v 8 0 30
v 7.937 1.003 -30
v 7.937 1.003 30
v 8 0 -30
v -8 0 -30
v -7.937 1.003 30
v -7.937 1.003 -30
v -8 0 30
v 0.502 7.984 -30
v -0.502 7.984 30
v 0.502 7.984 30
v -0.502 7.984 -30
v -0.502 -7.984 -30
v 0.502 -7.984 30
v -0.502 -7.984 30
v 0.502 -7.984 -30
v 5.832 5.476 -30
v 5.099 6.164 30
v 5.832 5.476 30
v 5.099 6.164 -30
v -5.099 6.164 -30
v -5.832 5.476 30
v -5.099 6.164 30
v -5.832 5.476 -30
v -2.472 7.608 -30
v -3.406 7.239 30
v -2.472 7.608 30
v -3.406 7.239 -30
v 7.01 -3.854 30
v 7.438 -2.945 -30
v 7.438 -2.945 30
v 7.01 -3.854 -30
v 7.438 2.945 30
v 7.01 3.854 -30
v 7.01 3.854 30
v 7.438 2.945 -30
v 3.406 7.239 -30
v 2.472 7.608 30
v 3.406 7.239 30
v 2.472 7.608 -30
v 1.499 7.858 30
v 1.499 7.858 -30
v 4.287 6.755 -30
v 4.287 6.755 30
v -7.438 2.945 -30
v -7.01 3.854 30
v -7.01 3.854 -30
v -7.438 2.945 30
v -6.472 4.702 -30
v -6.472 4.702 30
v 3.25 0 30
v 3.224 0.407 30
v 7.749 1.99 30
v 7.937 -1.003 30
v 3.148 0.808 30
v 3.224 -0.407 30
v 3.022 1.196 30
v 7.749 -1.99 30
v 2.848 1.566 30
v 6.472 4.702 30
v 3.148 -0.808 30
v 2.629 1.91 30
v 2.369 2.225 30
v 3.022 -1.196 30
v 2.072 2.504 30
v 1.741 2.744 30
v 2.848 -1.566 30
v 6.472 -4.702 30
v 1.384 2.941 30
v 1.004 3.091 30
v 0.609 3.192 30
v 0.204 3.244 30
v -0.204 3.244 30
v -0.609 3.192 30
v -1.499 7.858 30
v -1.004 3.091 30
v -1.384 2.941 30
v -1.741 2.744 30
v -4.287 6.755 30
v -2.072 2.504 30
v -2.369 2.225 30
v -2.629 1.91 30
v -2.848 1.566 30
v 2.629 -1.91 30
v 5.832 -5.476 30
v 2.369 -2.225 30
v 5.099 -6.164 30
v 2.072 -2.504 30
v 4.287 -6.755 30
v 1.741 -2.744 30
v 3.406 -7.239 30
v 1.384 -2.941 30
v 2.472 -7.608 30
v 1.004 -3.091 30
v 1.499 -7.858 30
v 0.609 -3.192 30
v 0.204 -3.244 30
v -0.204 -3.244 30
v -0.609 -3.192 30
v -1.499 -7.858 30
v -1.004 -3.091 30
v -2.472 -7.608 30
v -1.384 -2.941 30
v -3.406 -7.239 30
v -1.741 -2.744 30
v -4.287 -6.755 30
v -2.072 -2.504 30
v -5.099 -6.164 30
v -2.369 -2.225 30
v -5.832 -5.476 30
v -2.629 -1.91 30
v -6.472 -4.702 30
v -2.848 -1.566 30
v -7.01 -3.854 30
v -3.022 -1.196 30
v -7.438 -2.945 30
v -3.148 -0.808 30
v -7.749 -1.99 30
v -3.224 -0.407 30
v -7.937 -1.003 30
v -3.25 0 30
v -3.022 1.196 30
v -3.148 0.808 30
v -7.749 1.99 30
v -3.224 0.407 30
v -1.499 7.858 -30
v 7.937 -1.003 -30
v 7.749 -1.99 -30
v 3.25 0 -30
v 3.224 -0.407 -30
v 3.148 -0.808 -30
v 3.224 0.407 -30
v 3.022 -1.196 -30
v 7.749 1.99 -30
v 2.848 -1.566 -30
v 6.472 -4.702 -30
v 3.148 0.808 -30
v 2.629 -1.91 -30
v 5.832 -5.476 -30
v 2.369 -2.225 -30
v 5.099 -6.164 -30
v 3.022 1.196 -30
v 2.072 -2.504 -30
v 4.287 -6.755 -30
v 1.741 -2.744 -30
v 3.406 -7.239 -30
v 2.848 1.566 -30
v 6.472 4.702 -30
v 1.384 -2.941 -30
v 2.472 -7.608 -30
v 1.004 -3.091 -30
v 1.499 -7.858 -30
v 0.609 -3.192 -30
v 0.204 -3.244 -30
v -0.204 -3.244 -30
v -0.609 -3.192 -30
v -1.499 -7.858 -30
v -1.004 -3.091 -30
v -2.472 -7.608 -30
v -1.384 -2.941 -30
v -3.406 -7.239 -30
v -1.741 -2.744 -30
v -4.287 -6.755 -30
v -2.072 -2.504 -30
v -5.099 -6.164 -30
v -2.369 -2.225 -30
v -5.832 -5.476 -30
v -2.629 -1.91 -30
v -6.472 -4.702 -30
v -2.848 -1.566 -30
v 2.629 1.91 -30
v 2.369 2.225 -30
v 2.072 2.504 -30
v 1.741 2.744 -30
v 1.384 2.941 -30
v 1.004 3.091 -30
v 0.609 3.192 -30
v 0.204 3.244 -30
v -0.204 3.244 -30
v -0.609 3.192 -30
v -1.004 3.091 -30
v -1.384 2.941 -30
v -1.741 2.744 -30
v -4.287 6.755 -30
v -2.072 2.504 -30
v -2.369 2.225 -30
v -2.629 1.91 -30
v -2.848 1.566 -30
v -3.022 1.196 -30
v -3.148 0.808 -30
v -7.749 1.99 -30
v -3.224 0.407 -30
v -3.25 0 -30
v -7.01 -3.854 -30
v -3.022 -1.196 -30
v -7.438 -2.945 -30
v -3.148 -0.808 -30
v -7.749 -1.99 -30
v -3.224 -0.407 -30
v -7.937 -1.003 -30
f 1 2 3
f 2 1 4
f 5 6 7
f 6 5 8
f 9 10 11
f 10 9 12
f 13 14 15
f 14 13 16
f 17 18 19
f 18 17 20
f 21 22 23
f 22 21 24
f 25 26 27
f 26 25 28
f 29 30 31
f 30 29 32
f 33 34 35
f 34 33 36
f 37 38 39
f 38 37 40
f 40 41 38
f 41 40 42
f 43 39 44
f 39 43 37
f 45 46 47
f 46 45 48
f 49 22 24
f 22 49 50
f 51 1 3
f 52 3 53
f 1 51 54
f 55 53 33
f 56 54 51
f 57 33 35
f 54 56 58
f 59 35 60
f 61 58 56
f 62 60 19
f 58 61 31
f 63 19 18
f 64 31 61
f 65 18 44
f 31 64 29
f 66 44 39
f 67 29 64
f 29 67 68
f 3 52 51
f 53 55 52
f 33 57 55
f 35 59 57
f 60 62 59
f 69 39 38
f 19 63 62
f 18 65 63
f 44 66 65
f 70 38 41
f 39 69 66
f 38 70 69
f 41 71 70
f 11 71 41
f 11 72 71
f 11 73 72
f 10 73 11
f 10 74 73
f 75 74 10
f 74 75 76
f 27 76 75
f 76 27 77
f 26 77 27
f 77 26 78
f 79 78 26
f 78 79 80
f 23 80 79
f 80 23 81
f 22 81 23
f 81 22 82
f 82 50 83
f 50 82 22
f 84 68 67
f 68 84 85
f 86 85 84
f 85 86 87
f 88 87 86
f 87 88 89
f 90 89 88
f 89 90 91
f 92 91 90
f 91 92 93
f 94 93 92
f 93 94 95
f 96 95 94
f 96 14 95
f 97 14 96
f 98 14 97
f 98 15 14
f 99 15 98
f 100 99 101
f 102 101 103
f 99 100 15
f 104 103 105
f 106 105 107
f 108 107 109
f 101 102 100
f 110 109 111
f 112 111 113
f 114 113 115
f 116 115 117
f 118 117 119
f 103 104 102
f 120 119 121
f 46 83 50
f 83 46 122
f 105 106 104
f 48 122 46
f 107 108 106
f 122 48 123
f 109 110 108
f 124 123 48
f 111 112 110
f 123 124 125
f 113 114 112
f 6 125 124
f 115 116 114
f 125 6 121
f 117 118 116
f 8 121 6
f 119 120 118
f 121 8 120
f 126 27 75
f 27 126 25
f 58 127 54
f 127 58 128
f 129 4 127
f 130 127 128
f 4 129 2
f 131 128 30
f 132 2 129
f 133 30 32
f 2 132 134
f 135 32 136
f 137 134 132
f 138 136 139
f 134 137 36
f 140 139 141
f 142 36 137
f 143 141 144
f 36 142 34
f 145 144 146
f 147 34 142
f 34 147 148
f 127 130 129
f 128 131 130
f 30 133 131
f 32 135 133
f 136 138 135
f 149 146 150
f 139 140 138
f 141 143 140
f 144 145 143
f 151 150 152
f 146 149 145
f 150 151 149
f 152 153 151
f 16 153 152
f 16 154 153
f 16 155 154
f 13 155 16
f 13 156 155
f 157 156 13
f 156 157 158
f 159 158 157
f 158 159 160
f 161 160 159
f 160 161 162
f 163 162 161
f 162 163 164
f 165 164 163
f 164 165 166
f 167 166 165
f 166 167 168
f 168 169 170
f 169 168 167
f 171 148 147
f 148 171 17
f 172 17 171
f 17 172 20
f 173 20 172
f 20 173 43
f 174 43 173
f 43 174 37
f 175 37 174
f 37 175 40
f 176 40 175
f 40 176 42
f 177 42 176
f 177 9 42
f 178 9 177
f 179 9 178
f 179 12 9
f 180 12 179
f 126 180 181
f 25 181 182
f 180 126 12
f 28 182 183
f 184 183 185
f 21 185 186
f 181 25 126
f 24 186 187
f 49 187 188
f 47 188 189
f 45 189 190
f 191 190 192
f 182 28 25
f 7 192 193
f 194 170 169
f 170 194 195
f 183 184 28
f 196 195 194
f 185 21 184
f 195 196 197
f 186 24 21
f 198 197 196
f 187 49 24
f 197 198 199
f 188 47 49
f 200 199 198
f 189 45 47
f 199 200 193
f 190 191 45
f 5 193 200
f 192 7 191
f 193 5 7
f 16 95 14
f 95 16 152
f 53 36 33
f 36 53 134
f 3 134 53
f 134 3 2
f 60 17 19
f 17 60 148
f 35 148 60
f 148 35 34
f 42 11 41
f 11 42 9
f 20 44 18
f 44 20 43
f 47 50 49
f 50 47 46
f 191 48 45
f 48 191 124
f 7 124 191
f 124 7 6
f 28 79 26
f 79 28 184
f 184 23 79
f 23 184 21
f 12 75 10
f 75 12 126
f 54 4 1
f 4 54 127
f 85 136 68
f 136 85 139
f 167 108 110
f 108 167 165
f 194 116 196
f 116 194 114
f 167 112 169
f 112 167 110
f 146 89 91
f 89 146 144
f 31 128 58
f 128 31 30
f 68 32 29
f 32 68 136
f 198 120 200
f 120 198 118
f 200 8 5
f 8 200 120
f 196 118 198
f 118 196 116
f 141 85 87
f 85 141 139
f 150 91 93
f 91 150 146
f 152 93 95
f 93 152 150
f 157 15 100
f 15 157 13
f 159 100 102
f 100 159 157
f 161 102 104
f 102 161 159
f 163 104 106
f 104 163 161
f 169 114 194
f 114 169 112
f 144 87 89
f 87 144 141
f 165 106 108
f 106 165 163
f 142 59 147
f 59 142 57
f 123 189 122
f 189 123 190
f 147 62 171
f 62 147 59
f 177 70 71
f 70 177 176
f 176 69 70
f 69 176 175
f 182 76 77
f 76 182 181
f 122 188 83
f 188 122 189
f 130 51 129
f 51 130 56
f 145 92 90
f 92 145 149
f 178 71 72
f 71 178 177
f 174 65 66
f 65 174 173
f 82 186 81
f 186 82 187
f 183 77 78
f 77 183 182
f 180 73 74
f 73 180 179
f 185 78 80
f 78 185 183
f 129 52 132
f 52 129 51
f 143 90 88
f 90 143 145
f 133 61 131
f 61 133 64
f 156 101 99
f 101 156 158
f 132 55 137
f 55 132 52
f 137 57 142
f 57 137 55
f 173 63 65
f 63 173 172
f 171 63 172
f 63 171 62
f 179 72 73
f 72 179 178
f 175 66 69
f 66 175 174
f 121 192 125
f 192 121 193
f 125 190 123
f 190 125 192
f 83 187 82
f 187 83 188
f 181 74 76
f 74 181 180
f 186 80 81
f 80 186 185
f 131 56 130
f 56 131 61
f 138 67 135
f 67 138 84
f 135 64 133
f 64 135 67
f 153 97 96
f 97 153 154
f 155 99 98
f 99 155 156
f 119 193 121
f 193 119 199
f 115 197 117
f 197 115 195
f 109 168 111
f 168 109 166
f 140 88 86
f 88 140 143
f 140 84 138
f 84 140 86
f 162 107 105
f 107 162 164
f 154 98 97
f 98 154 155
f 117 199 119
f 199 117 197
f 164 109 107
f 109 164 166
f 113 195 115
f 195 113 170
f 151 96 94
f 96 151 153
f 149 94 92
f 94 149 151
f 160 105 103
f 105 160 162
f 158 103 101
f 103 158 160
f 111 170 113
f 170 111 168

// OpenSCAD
$fn = 50;


difference() {
	union() {
		translate(v = [0, 0, -30.0000000000]) {
			cylinder(h = 60, r = 8.0000000000);
		}
	}
	union() {
		translate(v = [0, 0, -100.0000000000]) {
			cylinder(h = 200, r = 3.2500000000);
		}
	}
}
